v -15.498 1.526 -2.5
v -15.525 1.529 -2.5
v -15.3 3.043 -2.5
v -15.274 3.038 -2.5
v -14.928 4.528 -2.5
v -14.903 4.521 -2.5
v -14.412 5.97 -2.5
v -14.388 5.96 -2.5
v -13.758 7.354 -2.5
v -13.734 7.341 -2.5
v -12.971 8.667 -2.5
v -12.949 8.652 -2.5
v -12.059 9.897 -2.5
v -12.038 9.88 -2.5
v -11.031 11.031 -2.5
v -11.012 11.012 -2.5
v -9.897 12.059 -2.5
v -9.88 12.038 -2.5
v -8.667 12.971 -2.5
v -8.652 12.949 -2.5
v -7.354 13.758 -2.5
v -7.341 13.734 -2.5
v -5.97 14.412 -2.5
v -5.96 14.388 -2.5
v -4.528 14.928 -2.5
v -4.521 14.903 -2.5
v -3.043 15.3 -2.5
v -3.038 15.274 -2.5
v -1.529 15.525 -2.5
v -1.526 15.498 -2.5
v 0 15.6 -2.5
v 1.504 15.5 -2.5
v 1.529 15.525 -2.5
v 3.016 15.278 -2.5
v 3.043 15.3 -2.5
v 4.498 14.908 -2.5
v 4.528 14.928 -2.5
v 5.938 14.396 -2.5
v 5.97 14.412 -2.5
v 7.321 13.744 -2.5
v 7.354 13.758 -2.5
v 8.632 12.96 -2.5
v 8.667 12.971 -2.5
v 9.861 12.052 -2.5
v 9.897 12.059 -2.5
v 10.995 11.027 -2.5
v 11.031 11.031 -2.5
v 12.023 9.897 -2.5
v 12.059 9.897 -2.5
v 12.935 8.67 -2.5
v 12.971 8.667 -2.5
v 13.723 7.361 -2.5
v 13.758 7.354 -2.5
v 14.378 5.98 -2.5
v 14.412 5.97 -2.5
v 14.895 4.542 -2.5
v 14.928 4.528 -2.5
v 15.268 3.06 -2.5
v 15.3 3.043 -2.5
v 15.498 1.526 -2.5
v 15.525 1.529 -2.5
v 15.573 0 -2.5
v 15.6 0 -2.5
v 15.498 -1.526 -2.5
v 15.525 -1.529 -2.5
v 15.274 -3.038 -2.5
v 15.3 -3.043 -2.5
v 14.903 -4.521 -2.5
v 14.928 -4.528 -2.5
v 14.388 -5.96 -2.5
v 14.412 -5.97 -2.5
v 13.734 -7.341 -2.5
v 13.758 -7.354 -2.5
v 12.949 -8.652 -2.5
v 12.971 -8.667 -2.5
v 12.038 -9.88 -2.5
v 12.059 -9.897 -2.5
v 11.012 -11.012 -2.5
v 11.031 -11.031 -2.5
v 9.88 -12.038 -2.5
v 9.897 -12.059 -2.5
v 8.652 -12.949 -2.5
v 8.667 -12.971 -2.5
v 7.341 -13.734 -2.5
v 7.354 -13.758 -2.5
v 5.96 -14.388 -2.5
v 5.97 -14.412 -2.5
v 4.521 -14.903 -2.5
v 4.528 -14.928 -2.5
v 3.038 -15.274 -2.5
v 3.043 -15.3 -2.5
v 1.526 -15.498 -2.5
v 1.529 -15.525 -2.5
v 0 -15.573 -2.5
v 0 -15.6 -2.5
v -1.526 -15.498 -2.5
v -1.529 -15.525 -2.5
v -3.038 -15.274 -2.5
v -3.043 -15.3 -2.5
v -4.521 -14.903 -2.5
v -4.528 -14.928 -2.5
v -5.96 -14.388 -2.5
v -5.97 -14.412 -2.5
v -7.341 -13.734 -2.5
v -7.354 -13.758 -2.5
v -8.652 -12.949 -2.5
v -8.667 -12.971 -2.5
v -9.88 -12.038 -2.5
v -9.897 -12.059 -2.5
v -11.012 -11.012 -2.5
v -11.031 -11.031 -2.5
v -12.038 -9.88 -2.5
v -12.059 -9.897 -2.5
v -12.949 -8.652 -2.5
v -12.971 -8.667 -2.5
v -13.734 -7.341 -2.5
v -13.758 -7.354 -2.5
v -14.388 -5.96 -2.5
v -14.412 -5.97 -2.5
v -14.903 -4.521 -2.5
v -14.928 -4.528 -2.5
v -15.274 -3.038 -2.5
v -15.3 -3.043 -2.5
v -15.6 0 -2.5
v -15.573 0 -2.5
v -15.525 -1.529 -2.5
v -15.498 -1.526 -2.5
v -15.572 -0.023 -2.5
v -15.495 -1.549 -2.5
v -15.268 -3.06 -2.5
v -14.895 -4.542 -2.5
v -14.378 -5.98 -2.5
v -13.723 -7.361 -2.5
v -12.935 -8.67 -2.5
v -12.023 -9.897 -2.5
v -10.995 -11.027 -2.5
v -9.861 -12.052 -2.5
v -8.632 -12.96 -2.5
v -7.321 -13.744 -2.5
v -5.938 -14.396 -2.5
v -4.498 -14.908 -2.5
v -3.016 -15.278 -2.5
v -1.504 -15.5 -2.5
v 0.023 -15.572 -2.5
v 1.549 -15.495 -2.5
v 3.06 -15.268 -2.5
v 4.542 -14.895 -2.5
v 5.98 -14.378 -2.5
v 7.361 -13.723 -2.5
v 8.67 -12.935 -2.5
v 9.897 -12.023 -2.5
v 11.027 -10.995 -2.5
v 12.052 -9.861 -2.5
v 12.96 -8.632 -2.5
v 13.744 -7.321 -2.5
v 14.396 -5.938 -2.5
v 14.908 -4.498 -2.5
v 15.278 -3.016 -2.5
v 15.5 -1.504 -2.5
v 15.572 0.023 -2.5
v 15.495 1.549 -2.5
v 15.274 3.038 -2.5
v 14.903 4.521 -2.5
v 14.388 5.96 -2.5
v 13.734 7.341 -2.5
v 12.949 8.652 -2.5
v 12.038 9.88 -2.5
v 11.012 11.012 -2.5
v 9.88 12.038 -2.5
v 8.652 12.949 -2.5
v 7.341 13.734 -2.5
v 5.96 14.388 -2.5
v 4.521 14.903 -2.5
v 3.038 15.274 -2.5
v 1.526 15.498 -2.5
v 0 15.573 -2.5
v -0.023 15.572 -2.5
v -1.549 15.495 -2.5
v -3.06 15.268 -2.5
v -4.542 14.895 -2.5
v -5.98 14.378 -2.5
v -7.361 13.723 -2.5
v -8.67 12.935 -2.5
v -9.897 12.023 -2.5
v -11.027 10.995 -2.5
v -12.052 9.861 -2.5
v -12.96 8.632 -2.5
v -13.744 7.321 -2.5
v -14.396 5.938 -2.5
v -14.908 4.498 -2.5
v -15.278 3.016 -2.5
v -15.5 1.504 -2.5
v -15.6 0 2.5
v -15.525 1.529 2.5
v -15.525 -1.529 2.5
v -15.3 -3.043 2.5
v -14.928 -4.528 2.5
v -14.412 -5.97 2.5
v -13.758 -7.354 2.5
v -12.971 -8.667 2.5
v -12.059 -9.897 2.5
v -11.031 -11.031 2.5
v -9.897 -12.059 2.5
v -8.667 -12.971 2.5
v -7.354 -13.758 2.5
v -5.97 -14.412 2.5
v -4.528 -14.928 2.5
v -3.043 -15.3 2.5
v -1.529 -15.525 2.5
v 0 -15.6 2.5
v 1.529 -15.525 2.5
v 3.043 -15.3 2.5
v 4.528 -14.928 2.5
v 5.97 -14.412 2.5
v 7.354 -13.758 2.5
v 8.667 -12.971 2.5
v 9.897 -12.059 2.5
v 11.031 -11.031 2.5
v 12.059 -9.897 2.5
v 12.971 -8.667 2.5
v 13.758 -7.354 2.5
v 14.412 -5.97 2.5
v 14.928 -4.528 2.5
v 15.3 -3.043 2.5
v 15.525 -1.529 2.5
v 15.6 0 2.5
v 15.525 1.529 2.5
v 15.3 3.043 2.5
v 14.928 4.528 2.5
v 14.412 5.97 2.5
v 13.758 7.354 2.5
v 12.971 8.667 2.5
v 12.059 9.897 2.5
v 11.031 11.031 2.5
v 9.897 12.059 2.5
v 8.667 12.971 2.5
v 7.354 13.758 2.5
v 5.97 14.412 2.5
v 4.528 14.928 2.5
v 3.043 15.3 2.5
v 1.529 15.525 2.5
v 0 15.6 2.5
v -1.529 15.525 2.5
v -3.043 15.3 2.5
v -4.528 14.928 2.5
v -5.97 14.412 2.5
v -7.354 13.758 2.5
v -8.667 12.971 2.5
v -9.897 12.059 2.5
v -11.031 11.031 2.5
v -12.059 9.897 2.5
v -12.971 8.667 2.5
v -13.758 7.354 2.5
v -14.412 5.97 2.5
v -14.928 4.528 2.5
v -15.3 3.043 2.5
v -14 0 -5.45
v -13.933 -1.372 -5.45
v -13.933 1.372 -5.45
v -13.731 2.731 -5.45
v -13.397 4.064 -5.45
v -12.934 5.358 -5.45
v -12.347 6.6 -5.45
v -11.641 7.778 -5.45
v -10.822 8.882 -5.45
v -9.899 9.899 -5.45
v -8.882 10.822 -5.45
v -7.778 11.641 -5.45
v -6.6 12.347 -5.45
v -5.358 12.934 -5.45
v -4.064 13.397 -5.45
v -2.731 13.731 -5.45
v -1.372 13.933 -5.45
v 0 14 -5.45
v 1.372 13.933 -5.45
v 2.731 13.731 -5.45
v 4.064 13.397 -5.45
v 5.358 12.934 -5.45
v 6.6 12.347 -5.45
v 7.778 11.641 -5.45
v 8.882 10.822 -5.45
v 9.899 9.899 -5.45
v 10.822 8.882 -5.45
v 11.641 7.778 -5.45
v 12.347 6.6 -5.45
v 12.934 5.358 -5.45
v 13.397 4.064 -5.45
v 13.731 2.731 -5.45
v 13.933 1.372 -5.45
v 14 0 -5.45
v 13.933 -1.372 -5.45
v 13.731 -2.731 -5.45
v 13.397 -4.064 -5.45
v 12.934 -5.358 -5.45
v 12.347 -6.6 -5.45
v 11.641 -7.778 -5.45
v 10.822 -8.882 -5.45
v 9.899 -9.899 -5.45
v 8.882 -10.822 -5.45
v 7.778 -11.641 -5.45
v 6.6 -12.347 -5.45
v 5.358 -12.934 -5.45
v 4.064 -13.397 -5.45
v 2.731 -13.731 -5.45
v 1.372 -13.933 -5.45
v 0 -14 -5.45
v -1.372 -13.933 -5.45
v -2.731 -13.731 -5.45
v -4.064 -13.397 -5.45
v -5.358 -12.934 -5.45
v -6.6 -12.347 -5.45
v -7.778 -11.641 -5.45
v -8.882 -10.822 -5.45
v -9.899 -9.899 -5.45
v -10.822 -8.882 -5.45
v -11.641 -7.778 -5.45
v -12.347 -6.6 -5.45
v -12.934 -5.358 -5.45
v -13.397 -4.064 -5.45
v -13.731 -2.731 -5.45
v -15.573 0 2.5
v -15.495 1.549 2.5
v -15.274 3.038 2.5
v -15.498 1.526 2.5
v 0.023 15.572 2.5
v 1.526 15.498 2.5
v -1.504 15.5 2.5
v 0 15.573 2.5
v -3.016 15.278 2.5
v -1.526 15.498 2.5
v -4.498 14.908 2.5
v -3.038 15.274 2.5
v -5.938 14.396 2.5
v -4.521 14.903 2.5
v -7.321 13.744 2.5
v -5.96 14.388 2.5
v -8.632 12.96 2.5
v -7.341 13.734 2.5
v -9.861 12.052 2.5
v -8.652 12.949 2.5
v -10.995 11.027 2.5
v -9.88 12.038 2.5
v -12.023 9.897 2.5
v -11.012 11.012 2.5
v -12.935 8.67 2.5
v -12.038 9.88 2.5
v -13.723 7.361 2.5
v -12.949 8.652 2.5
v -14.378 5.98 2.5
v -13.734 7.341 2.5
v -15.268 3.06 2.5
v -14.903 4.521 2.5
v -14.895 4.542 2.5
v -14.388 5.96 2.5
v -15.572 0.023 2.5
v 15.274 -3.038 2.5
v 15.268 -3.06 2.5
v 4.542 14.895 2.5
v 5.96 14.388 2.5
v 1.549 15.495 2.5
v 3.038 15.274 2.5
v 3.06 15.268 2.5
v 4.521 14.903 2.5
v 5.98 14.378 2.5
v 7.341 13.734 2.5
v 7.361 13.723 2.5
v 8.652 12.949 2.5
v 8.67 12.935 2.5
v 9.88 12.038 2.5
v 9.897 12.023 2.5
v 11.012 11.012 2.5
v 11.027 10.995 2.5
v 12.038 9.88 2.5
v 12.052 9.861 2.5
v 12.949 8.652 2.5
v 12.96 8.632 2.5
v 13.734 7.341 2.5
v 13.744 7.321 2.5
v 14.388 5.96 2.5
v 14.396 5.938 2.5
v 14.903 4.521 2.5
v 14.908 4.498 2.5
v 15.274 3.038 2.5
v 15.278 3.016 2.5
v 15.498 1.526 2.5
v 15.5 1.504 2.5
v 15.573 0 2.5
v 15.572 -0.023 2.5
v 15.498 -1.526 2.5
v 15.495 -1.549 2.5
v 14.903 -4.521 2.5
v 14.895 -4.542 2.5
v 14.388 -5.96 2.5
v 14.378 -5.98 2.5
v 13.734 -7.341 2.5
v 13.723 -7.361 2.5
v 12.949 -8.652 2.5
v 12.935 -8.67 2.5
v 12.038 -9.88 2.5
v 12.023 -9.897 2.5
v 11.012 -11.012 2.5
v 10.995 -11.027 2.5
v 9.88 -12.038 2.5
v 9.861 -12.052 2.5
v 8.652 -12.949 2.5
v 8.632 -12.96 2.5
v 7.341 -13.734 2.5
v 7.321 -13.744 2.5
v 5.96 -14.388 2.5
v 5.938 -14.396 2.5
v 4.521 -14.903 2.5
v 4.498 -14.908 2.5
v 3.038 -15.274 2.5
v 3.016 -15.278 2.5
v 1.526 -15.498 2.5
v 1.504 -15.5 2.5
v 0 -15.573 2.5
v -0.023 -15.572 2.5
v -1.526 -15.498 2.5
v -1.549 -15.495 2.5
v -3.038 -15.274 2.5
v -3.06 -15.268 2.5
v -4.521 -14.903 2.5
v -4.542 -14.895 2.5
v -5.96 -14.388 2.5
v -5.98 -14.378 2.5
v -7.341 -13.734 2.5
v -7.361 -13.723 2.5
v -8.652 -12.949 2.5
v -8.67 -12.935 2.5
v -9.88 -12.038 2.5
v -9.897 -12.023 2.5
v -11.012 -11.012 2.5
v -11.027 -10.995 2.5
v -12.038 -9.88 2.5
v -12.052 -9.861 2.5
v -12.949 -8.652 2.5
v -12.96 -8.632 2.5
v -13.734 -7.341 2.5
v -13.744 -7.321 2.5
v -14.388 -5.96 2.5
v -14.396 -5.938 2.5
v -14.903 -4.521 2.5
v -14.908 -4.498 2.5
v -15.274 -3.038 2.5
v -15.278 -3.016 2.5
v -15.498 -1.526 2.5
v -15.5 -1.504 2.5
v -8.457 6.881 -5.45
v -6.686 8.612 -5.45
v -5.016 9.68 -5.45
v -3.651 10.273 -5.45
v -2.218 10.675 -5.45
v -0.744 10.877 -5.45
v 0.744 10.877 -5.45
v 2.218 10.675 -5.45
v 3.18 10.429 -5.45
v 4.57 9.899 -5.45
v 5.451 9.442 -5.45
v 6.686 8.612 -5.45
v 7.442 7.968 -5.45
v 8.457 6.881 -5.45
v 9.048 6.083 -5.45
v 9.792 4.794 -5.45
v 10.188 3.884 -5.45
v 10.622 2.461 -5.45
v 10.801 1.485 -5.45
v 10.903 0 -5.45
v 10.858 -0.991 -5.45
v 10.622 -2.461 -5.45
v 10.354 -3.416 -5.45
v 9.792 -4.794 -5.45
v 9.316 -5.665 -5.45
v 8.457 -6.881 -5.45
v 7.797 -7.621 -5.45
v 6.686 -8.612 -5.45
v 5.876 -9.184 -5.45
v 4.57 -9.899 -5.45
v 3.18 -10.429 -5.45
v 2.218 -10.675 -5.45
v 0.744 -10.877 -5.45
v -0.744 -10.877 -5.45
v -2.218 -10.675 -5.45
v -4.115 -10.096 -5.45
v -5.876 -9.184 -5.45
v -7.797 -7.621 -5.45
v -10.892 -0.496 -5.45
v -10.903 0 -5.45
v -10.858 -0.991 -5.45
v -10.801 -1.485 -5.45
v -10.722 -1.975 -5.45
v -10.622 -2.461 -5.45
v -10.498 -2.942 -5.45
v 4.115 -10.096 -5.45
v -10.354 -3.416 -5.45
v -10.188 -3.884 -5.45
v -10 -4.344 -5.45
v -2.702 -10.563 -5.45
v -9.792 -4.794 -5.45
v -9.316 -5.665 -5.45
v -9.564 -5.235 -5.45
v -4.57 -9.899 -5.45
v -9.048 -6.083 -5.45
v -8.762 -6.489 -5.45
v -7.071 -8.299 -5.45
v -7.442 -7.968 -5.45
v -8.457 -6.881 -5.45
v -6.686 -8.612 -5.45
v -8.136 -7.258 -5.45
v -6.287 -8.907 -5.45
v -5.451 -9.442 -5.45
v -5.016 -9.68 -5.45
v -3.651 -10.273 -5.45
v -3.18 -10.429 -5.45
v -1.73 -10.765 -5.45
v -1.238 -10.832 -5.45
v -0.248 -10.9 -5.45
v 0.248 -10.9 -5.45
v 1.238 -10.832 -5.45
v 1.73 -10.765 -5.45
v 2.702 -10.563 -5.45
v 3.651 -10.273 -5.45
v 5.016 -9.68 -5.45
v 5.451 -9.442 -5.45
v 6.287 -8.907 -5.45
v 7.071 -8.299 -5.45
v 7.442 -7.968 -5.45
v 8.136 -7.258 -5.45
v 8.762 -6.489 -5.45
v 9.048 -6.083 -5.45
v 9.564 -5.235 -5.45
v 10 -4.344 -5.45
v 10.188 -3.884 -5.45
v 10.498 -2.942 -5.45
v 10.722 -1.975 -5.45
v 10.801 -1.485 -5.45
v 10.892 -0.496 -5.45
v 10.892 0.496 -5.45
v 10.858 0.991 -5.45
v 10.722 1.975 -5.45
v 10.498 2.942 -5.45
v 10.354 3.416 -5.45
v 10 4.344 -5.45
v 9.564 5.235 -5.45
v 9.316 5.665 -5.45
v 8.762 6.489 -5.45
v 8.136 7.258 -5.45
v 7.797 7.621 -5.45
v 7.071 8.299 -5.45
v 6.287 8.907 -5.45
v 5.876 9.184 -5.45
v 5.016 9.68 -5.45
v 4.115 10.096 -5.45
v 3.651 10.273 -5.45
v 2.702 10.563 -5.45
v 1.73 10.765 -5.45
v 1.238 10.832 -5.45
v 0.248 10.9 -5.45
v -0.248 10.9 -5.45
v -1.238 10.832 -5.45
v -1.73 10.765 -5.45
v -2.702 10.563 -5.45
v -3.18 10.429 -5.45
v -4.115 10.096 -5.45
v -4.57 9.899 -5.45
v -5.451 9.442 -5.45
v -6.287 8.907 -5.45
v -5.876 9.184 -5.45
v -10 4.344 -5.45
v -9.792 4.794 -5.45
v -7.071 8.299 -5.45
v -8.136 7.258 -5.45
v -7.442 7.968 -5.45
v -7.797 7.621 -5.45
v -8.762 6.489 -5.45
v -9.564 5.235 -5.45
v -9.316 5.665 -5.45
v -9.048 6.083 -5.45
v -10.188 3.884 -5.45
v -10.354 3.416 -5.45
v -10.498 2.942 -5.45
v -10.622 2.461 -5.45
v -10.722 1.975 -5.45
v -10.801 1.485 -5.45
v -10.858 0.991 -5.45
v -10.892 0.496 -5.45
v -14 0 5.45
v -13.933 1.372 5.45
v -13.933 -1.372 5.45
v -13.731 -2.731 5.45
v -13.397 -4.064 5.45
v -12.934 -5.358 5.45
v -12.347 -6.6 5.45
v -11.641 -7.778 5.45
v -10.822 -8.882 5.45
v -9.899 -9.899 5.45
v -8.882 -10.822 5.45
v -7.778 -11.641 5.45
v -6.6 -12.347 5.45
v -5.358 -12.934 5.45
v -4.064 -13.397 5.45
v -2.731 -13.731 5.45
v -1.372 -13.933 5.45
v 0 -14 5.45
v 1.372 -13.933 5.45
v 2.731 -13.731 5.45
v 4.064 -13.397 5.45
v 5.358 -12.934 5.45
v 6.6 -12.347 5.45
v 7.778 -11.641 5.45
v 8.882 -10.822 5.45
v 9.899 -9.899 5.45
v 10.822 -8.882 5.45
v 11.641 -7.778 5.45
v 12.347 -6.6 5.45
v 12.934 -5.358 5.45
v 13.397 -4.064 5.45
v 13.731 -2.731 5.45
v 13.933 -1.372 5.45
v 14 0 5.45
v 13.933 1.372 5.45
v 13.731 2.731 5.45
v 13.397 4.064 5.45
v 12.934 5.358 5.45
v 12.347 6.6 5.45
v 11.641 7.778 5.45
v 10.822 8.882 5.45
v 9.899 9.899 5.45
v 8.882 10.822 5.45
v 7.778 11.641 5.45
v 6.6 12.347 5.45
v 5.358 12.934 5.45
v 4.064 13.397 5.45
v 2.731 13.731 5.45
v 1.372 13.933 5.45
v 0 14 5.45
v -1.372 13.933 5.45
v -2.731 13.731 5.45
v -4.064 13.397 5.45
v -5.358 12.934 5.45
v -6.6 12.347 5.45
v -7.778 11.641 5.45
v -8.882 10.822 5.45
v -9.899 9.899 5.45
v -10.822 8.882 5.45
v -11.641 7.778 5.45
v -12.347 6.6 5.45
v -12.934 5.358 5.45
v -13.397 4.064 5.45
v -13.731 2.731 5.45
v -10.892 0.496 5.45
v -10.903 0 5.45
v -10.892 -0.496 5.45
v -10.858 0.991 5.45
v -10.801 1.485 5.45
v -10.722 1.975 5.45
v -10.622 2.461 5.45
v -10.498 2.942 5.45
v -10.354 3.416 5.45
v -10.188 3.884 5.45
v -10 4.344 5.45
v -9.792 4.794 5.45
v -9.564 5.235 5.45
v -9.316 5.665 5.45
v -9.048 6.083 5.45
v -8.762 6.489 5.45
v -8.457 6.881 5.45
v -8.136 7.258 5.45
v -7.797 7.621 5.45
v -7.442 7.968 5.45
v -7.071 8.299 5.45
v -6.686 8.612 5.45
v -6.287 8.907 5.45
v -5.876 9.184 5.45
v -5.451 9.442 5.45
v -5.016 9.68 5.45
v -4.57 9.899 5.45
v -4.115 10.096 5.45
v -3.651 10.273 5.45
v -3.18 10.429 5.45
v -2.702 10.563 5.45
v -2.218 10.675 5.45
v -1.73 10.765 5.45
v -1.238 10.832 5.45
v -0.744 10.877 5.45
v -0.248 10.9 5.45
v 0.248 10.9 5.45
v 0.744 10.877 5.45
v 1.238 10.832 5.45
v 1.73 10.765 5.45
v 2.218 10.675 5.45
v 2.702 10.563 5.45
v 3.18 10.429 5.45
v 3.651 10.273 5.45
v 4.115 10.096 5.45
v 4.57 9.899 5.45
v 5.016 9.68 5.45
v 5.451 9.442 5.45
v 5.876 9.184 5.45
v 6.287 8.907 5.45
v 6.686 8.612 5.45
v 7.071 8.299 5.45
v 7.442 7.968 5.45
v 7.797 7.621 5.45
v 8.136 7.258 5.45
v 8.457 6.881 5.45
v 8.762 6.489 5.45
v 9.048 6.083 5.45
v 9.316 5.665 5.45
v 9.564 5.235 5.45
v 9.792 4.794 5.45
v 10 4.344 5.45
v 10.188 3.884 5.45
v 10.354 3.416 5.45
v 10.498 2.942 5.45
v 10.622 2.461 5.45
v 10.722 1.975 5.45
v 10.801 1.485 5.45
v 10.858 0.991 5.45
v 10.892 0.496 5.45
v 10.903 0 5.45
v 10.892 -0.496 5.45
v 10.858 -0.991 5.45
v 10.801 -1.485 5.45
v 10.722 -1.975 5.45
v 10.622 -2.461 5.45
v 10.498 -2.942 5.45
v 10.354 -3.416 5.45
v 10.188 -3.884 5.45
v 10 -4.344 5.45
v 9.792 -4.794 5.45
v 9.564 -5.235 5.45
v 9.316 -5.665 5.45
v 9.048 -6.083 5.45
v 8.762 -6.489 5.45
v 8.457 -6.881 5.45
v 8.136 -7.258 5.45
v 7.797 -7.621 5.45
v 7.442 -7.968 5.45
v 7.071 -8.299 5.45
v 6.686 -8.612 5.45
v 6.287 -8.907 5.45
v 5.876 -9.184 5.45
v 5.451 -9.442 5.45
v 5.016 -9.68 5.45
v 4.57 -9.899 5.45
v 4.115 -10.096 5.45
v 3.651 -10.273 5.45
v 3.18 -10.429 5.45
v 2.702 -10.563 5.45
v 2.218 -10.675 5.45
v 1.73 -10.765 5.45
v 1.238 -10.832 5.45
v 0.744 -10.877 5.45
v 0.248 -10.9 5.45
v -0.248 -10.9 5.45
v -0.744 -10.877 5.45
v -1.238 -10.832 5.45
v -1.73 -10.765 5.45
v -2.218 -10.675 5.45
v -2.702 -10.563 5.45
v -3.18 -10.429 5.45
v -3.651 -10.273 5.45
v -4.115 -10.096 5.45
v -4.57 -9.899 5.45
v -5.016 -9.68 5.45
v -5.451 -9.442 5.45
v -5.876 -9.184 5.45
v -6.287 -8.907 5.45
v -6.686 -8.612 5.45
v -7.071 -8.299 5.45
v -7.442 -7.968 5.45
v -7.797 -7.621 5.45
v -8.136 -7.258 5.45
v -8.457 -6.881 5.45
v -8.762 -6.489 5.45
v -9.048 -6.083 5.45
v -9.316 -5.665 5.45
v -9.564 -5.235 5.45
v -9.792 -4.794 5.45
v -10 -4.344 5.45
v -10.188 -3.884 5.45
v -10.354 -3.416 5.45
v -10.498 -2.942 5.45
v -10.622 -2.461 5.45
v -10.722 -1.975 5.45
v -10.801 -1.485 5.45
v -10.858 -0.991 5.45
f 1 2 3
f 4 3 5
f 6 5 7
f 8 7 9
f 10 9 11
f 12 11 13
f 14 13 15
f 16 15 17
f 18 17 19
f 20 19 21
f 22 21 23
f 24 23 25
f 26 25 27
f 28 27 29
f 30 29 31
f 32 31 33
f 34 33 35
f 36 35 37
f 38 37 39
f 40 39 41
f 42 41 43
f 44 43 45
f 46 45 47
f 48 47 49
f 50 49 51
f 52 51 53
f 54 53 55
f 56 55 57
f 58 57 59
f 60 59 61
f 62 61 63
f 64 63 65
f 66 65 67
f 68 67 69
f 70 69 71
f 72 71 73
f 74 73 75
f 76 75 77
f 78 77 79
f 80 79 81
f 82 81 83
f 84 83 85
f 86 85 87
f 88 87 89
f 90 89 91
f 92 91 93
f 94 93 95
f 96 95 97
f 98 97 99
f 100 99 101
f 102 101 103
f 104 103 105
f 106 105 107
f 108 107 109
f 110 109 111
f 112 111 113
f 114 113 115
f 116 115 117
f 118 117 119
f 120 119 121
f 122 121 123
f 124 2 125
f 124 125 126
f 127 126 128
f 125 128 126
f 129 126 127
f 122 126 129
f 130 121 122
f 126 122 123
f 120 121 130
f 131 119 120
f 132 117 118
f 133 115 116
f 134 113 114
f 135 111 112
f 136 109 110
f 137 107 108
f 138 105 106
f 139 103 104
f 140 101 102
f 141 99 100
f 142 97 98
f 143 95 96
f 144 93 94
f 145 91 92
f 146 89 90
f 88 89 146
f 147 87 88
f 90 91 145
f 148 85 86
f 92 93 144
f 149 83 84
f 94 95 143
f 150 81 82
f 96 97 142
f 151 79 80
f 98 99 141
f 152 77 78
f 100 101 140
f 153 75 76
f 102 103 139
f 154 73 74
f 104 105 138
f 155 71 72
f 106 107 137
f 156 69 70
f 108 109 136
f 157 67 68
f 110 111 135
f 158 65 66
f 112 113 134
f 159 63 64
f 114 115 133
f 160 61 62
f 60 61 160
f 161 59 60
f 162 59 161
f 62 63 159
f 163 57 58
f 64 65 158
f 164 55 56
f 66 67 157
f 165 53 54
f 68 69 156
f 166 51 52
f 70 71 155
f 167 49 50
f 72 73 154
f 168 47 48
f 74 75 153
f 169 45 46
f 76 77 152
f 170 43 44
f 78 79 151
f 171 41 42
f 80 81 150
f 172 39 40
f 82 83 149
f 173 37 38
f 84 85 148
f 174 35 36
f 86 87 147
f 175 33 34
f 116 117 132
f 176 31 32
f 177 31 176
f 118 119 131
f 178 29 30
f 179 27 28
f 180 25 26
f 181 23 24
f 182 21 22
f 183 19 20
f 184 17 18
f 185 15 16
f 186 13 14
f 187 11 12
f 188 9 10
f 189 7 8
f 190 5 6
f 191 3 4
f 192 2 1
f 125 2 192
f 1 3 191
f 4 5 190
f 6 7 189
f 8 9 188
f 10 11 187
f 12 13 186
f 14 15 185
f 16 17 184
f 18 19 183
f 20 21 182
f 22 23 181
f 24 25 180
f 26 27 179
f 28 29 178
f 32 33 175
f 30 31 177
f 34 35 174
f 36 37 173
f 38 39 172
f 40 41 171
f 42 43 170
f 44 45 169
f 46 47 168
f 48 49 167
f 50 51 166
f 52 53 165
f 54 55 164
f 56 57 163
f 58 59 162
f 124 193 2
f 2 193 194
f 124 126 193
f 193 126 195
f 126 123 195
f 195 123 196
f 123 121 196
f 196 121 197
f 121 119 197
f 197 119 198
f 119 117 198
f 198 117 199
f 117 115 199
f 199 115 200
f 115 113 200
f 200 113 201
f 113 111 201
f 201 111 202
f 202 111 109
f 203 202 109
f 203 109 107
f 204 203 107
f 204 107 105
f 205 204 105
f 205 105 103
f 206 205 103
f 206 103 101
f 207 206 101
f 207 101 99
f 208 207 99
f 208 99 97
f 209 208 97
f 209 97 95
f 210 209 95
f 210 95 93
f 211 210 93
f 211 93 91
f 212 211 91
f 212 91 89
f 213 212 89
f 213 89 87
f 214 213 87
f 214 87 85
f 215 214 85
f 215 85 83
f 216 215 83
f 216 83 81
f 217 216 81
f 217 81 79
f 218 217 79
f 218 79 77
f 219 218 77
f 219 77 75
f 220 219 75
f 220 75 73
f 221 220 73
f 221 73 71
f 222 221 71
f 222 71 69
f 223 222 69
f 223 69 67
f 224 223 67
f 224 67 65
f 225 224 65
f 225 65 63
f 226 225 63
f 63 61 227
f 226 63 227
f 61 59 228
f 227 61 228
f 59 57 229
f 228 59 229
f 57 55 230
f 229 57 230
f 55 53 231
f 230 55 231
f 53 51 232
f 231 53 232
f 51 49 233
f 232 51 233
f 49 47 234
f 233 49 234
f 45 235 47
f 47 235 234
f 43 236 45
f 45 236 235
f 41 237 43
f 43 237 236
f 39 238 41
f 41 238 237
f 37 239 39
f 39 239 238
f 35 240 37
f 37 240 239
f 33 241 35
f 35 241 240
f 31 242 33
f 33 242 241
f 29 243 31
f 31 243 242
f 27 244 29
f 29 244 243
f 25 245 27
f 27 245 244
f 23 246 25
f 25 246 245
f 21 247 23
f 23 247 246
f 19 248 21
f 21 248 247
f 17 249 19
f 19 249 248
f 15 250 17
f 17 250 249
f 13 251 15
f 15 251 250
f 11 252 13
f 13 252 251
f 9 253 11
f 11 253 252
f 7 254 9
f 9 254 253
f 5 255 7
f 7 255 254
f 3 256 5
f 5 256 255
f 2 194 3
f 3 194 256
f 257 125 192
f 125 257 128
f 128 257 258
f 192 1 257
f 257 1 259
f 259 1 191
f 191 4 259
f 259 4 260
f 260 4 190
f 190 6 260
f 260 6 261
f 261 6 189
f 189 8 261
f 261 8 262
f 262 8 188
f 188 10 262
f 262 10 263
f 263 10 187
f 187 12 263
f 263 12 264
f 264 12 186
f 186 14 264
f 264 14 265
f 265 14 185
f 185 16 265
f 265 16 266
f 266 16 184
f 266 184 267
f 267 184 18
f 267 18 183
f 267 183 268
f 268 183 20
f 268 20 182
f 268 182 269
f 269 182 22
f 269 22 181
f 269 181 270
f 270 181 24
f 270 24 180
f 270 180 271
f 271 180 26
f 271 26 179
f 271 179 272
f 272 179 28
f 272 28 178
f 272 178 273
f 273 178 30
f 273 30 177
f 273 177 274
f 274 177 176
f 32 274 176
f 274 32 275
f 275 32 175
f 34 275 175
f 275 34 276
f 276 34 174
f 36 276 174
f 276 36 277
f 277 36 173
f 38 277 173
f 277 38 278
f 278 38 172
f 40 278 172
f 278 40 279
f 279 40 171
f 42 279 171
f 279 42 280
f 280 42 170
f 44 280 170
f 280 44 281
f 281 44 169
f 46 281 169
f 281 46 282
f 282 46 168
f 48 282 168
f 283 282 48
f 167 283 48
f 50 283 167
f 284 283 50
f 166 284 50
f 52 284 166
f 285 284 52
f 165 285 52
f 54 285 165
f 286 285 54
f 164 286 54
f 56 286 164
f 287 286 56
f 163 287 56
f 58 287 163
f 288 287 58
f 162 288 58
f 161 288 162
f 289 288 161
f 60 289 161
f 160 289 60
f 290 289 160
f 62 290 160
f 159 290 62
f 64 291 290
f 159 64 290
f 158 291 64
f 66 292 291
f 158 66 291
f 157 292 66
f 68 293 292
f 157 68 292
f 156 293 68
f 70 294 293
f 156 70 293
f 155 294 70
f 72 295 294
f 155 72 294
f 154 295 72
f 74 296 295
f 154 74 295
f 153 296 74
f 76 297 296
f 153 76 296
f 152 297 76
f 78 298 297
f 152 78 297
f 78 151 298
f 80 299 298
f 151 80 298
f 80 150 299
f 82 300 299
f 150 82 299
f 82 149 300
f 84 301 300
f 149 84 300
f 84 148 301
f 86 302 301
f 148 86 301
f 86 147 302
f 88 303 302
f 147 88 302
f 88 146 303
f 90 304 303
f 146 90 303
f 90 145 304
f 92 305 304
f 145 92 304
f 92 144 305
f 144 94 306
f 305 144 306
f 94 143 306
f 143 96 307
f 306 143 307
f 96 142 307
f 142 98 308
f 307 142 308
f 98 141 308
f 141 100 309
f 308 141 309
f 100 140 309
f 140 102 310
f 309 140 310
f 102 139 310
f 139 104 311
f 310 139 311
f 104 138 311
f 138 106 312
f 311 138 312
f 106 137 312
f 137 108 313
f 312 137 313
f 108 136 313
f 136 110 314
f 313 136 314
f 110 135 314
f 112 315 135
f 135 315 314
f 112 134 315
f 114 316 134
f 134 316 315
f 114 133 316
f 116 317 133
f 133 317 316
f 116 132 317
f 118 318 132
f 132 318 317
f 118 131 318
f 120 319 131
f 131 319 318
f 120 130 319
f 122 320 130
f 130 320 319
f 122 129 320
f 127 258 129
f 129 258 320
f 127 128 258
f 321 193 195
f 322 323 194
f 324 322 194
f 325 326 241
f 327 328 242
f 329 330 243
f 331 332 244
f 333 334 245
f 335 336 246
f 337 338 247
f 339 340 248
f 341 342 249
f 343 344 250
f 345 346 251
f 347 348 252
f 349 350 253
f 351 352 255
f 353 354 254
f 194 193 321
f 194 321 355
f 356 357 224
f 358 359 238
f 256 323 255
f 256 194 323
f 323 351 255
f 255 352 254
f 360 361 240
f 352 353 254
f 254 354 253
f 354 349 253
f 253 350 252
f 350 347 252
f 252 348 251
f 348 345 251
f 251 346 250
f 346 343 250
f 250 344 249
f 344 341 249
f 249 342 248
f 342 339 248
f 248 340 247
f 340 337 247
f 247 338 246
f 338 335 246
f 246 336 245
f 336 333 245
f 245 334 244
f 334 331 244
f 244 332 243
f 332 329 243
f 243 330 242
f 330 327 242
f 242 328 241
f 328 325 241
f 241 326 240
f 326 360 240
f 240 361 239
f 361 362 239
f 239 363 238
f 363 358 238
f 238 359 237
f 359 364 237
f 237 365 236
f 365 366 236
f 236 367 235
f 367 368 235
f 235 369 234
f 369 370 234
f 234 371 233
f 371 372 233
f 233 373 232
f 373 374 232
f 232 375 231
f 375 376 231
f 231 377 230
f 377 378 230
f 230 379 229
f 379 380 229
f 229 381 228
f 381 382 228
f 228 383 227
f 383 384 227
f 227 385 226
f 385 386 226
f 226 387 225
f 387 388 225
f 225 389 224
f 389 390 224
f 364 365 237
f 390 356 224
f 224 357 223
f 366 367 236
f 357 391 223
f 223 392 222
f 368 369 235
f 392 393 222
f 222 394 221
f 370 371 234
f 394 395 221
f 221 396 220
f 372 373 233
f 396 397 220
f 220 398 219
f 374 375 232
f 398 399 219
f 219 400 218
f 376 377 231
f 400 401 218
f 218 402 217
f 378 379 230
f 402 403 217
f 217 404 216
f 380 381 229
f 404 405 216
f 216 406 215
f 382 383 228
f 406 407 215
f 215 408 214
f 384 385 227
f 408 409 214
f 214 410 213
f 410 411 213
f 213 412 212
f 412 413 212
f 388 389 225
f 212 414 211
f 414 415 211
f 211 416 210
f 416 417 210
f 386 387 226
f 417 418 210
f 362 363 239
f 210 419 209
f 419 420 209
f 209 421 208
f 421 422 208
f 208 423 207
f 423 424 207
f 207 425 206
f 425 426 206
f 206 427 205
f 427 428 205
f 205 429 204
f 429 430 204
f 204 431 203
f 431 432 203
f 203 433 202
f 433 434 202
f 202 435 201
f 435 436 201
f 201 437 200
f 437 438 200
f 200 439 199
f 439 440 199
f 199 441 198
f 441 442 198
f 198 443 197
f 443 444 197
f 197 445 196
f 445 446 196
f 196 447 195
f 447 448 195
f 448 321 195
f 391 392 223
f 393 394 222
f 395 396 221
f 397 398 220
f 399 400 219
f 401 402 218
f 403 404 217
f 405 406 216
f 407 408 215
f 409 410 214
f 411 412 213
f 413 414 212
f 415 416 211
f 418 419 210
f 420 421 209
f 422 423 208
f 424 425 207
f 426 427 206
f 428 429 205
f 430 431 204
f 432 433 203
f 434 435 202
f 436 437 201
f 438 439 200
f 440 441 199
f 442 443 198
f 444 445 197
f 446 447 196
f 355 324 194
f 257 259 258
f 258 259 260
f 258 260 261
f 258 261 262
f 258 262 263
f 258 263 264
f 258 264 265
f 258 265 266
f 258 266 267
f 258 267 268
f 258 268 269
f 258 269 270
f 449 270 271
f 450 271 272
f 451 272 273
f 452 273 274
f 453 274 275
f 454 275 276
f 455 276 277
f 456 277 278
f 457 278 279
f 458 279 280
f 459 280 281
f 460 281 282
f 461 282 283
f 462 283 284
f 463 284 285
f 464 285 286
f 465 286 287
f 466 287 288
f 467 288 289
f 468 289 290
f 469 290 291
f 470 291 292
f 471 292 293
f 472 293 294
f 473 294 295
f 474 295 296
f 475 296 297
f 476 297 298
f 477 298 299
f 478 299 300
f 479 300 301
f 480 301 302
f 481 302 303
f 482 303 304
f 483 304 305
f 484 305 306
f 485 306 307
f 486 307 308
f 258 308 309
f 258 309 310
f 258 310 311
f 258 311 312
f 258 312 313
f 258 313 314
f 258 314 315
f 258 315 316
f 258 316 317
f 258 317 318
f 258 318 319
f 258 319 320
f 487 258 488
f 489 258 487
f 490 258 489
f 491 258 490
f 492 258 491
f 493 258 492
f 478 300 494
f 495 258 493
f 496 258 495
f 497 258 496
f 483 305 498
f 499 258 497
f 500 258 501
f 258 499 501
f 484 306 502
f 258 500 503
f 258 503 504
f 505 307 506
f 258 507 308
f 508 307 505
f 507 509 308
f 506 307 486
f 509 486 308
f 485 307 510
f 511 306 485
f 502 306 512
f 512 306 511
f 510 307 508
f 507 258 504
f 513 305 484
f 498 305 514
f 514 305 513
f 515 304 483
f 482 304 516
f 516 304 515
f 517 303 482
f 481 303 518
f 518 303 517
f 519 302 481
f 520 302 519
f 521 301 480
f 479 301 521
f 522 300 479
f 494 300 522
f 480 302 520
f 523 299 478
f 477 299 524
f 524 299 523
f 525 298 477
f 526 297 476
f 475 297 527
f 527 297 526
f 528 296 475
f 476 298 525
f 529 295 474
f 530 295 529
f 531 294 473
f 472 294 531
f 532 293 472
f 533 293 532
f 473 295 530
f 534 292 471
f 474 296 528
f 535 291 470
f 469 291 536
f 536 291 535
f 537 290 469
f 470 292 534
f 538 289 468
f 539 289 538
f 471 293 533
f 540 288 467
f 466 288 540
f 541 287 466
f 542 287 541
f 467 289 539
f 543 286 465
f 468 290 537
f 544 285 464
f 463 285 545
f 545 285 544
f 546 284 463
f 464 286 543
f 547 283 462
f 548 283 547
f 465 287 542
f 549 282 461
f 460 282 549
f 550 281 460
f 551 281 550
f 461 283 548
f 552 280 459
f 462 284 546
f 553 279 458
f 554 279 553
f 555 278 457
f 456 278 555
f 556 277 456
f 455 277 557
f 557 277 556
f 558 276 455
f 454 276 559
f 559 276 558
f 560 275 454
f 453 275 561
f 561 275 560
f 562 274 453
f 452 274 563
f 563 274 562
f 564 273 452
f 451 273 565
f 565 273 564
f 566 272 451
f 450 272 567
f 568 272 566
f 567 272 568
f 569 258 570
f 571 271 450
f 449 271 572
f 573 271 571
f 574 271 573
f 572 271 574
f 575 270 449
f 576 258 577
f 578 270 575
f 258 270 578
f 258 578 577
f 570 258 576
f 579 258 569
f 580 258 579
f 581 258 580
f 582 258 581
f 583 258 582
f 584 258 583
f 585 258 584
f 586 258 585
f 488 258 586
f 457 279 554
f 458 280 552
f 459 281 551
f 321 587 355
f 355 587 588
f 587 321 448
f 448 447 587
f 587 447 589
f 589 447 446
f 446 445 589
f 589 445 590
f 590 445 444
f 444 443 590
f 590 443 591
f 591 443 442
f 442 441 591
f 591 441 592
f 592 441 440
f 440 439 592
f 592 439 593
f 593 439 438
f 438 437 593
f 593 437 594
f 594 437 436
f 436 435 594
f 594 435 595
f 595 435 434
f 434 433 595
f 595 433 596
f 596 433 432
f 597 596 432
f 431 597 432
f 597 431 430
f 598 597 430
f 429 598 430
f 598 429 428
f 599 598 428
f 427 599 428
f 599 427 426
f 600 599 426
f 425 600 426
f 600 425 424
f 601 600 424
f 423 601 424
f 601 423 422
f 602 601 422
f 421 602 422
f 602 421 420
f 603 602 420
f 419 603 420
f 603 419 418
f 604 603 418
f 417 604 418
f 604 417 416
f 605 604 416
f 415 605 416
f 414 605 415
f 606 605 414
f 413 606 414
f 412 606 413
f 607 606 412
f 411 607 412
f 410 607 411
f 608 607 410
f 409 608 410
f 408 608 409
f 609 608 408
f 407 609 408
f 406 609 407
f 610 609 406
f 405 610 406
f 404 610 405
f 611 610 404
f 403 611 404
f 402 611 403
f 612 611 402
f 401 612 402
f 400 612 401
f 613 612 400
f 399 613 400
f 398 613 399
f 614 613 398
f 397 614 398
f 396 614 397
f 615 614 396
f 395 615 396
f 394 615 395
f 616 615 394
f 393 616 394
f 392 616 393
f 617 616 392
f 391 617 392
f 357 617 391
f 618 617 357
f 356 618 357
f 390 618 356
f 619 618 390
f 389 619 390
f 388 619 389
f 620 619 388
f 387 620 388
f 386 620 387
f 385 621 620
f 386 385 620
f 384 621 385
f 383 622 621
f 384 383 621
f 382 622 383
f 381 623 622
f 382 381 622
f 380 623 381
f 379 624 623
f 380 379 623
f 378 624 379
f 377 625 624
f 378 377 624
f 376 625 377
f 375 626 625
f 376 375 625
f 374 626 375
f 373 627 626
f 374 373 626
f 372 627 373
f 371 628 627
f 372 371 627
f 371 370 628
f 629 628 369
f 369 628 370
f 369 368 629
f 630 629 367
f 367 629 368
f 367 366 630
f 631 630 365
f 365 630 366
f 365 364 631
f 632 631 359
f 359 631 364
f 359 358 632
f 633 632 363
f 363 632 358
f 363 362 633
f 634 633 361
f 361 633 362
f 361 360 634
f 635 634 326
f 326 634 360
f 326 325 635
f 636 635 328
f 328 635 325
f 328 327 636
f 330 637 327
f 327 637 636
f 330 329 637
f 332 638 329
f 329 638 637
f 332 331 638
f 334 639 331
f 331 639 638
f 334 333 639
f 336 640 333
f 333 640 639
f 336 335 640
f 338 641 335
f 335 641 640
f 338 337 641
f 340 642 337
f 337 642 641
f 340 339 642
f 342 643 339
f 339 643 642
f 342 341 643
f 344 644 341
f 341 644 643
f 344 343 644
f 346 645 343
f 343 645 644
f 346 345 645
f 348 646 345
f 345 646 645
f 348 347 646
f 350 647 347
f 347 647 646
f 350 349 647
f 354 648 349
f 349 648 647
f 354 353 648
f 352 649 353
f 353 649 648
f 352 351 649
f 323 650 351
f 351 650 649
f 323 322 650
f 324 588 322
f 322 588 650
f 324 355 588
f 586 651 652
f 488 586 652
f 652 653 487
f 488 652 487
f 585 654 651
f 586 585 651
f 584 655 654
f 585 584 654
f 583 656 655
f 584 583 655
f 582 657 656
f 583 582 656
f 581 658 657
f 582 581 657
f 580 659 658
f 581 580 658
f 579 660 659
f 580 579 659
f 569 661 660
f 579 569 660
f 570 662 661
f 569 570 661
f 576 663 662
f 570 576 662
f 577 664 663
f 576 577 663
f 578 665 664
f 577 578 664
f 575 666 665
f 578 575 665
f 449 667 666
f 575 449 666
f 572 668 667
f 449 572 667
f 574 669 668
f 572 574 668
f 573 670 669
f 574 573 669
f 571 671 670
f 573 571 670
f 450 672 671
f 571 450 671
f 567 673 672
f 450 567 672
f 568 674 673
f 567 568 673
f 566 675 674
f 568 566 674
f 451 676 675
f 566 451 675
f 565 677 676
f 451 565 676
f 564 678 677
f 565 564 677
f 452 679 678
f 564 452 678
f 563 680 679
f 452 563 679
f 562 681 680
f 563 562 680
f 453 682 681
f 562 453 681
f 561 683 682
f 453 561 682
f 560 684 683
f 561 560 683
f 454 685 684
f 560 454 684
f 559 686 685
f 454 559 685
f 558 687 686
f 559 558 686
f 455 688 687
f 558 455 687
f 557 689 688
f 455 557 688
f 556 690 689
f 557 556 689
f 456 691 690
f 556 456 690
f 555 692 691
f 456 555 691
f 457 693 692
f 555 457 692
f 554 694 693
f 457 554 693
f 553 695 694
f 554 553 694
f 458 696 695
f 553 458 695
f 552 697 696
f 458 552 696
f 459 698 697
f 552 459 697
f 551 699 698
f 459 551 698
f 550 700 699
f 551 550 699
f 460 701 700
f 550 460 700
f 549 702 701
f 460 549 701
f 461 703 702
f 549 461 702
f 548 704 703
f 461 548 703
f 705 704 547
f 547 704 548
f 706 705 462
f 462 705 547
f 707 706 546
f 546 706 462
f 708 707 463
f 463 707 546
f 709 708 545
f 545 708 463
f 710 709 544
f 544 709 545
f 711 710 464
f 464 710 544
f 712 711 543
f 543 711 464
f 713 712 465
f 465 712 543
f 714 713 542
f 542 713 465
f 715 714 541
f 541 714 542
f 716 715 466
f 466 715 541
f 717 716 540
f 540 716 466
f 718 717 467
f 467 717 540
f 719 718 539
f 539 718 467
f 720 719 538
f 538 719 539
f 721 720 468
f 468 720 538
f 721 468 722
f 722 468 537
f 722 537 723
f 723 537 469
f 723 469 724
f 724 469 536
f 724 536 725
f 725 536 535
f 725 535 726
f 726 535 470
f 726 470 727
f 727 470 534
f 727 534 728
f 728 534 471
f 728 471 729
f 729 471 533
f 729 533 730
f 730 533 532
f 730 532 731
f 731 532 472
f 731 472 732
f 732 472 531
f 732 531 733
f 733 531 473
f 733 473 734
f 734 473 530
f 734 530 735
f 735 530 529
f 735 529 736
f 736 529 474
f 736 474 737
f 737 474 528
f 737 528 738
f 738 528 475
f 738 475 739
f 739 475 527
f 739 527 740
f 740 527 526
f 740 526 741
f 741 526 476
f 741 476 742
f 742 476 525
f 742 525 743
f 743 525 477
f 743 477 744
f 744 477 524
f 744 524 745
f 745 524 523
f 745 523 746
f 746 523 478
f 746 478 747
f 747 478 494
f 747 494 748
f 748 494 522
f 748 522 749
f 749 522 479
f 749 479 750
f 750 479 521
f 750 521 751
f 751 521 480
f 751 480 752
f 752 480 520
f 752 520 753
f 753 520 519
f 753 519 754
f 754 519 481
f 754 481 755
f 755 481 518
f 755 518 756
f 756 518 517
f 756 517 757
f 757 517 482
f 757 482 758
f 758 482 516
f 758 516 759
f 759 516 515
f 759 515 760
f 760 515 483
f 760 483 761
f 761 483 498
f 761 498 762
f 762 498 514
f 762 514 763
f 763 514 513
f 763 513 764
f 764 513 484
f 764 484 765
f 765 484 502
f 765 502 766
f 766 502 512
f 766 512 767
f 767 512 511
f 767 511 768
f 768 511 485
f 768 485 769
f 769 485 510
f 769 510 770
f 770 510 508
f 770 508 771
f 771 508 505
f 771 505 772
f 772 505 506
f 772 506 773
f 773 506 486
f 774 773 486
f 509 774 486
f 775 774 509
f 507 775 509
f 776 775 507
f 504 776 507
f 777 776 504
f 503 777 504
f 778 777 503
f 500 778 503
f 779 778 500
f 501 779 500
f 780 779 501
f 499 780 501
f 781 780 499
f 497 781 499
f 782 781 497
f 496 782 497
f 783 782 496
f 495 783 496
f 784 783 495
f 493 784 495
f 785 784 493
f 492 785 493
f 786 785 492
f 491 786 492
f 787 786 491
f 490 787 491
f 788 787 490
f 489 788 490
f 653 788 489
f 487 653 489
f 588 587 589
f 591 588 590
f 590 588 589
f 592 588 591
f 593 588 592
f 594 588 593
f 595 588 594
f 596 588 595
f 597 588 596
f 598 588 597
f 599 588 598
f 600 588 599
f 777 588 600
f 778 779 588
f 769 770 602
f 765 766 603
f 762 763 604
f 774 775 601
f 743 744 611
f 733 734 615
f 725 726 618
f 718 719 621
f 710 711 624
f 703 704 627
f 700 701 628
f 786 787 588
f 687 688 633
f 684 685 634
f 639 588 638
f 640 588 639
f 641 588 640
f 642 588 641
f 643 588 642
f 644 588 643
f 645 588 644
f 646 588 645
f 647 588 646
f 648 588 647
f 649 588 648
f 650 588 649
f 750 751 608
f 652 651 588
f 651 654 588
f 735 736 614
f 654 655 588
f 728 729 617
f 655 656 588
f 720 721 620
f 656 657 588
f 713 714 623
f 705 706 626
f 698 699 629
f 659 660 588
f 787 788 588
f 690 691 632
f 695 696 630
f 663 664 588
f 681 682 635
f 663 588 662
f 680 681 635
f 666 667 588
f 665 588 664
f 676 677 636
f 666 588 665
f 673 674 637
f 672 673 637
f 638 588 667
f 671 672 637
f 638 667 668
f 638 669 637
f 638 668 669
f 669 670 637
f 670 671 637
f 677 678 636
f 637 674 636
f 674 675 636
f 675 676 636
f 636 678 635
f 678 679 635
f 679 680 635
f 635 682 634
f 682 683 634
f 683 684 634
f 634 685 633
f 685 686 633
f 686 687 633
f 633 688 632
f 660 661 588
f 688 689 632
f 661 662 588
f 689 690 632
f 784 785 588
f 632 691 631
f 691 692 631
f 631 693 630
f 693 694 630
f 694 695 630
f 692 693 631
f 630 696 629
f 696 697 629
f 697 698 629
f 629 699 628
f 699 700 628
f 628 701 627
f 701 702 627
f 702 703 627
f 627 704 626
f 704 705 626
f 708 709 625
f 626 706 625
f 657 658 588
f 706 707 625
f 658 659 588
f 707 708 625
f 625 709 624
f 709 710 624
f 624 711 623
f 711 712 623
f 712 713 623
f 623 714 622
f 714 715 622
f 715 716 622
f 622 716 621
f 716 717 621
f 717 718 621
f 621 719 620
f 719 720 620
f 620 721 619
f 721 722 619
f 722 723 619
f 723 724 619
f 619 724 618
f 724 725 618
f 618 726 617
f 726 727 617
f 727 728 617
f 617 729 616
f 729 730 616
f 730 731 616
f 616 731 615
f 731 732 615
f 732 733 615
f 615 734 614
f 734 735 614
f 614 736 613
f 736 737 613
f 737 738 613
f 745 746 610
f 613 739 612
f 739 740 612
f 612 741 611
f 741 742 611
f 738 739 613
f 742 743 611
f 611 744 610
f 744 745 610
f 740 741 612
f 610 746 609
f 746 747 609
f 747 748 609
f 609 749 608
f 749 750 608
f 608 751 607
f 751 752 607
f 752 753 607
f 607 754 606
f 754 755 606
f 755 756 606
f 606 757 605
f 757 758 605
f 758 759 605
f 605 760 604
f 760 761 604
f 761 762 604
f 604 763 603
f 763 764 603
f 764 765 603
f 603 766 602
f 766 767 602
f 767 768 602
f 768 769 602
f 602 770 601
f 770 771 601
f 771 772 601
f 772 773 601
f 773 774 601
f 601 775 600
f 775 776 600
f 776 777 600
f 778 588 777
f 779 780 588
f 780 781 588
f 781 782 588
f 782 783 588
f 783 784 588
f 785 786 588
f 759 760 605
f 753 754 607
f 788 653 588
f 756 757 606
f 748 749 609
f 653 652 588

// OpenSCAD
// file: myLibs.scad
pi= 3.14159265359;

module hole(diam, height, clearance= 0.1)
{
        fn= round(diam * pi / 0.5);
        cylinder(h= height, r=diam / 2 / cos(180 / fn) + clearance, $fn=fn);
}

module nutTrap(ffd, faces=6, height=1)
{
	cylinder(h= height, r=ffd / cos(180 / faces) / 2 + 0.05, $fn=faces);
}

// A slot which has rounded ends, but total length is l
module slot(d= 4, l= 8, ht= 1, clearance=0.1) {
	fn= round(d * pi / 0.5);
	rd= d / 2 / cos(180 / fn) + clearance;
	d1= rd*2;
	union() {
		translate([0,0,ht/2]) cube([l-d1, d1, ht], center=true);
		translate([-(l-d1)/2, 0, ht/2]) cylinder(h=ht, r=rd, $fn=fn, center=true); 
		translate([(l-d1)/2, 0, ht/2]) cylinder(h=ht, r=rd, $fn=fn, center=true); 
	}
	
}

/**
 * Standard right-angled triangle
 *
 * @param number o_len Lenght of the opposite side
 * @param number a_len Lenght of the adjacent side
 * @param number depth How wide/deep the triangle is in the 3rd dimension
 * @todo a better way ?
 */
module triangle(o_len, a_len, depth)
{
    linear_extrude(height=depth)
    {
        polygon(points=[[0,0],[a_len,0],[0,o_len]], paths=[[0,1,2]]);
    }
}
// main file
// a wheel that rides in t slot, based on steve grabers W wheel
use <myLibs.scad>

od= 31.2;
id= 28;
innert= 5;
outert=8;

wheel_id= 22.0; // the diameter of the outside hole
wheel_d= 2.47; // the depth from the outside of the wheel to the bearing
wheel_groove_d= 2.5; // the depth of the groove on the outside of the wheel
wheel_groove_w= 3; // the width of the groove on the outside of the wheel

bearingThickness= 7;
bearingOD= 22;
bearingID= 8;

function w_wheel_dia()= od;
function w_wheel_width()= (outert-innert*2)+innert;
function w_wheel_id()= wheel_id;
function w_wheel_indent()= wheel_d-0.1;

module W_wheel() {
	rth= outert-innert;
	union() {
		cylinder(r=od/2, h= innert, center=true, $fn=64);
		translate([0,0,innert/2-0.05]) cylinder(r1=od/2,r2=id/2, h=rth, $fn=64);
		translate([0,0,-innert/2-rth+0.05]) cylinder(r2=od/2,r1=id/2, h=rth, $fn=64);
	}
}

module w_wheel() {
	union() {
		difference() {
			W_wheel();
			translate([0,0,-40/2]) hole(bearingOD, 40, -0.1); // make it very tight fit
		}
		// rim
		//#cylinder(r=bearingOD/2+1, h= (w_wheel_width()-bearingThickness)/2);
		
	}
}

module w_wheel_vertical() {
	rotate([0,90,0]) w_wheel();
}

w_wheel();
//w_wheel_vertical();
//W_wheel();
